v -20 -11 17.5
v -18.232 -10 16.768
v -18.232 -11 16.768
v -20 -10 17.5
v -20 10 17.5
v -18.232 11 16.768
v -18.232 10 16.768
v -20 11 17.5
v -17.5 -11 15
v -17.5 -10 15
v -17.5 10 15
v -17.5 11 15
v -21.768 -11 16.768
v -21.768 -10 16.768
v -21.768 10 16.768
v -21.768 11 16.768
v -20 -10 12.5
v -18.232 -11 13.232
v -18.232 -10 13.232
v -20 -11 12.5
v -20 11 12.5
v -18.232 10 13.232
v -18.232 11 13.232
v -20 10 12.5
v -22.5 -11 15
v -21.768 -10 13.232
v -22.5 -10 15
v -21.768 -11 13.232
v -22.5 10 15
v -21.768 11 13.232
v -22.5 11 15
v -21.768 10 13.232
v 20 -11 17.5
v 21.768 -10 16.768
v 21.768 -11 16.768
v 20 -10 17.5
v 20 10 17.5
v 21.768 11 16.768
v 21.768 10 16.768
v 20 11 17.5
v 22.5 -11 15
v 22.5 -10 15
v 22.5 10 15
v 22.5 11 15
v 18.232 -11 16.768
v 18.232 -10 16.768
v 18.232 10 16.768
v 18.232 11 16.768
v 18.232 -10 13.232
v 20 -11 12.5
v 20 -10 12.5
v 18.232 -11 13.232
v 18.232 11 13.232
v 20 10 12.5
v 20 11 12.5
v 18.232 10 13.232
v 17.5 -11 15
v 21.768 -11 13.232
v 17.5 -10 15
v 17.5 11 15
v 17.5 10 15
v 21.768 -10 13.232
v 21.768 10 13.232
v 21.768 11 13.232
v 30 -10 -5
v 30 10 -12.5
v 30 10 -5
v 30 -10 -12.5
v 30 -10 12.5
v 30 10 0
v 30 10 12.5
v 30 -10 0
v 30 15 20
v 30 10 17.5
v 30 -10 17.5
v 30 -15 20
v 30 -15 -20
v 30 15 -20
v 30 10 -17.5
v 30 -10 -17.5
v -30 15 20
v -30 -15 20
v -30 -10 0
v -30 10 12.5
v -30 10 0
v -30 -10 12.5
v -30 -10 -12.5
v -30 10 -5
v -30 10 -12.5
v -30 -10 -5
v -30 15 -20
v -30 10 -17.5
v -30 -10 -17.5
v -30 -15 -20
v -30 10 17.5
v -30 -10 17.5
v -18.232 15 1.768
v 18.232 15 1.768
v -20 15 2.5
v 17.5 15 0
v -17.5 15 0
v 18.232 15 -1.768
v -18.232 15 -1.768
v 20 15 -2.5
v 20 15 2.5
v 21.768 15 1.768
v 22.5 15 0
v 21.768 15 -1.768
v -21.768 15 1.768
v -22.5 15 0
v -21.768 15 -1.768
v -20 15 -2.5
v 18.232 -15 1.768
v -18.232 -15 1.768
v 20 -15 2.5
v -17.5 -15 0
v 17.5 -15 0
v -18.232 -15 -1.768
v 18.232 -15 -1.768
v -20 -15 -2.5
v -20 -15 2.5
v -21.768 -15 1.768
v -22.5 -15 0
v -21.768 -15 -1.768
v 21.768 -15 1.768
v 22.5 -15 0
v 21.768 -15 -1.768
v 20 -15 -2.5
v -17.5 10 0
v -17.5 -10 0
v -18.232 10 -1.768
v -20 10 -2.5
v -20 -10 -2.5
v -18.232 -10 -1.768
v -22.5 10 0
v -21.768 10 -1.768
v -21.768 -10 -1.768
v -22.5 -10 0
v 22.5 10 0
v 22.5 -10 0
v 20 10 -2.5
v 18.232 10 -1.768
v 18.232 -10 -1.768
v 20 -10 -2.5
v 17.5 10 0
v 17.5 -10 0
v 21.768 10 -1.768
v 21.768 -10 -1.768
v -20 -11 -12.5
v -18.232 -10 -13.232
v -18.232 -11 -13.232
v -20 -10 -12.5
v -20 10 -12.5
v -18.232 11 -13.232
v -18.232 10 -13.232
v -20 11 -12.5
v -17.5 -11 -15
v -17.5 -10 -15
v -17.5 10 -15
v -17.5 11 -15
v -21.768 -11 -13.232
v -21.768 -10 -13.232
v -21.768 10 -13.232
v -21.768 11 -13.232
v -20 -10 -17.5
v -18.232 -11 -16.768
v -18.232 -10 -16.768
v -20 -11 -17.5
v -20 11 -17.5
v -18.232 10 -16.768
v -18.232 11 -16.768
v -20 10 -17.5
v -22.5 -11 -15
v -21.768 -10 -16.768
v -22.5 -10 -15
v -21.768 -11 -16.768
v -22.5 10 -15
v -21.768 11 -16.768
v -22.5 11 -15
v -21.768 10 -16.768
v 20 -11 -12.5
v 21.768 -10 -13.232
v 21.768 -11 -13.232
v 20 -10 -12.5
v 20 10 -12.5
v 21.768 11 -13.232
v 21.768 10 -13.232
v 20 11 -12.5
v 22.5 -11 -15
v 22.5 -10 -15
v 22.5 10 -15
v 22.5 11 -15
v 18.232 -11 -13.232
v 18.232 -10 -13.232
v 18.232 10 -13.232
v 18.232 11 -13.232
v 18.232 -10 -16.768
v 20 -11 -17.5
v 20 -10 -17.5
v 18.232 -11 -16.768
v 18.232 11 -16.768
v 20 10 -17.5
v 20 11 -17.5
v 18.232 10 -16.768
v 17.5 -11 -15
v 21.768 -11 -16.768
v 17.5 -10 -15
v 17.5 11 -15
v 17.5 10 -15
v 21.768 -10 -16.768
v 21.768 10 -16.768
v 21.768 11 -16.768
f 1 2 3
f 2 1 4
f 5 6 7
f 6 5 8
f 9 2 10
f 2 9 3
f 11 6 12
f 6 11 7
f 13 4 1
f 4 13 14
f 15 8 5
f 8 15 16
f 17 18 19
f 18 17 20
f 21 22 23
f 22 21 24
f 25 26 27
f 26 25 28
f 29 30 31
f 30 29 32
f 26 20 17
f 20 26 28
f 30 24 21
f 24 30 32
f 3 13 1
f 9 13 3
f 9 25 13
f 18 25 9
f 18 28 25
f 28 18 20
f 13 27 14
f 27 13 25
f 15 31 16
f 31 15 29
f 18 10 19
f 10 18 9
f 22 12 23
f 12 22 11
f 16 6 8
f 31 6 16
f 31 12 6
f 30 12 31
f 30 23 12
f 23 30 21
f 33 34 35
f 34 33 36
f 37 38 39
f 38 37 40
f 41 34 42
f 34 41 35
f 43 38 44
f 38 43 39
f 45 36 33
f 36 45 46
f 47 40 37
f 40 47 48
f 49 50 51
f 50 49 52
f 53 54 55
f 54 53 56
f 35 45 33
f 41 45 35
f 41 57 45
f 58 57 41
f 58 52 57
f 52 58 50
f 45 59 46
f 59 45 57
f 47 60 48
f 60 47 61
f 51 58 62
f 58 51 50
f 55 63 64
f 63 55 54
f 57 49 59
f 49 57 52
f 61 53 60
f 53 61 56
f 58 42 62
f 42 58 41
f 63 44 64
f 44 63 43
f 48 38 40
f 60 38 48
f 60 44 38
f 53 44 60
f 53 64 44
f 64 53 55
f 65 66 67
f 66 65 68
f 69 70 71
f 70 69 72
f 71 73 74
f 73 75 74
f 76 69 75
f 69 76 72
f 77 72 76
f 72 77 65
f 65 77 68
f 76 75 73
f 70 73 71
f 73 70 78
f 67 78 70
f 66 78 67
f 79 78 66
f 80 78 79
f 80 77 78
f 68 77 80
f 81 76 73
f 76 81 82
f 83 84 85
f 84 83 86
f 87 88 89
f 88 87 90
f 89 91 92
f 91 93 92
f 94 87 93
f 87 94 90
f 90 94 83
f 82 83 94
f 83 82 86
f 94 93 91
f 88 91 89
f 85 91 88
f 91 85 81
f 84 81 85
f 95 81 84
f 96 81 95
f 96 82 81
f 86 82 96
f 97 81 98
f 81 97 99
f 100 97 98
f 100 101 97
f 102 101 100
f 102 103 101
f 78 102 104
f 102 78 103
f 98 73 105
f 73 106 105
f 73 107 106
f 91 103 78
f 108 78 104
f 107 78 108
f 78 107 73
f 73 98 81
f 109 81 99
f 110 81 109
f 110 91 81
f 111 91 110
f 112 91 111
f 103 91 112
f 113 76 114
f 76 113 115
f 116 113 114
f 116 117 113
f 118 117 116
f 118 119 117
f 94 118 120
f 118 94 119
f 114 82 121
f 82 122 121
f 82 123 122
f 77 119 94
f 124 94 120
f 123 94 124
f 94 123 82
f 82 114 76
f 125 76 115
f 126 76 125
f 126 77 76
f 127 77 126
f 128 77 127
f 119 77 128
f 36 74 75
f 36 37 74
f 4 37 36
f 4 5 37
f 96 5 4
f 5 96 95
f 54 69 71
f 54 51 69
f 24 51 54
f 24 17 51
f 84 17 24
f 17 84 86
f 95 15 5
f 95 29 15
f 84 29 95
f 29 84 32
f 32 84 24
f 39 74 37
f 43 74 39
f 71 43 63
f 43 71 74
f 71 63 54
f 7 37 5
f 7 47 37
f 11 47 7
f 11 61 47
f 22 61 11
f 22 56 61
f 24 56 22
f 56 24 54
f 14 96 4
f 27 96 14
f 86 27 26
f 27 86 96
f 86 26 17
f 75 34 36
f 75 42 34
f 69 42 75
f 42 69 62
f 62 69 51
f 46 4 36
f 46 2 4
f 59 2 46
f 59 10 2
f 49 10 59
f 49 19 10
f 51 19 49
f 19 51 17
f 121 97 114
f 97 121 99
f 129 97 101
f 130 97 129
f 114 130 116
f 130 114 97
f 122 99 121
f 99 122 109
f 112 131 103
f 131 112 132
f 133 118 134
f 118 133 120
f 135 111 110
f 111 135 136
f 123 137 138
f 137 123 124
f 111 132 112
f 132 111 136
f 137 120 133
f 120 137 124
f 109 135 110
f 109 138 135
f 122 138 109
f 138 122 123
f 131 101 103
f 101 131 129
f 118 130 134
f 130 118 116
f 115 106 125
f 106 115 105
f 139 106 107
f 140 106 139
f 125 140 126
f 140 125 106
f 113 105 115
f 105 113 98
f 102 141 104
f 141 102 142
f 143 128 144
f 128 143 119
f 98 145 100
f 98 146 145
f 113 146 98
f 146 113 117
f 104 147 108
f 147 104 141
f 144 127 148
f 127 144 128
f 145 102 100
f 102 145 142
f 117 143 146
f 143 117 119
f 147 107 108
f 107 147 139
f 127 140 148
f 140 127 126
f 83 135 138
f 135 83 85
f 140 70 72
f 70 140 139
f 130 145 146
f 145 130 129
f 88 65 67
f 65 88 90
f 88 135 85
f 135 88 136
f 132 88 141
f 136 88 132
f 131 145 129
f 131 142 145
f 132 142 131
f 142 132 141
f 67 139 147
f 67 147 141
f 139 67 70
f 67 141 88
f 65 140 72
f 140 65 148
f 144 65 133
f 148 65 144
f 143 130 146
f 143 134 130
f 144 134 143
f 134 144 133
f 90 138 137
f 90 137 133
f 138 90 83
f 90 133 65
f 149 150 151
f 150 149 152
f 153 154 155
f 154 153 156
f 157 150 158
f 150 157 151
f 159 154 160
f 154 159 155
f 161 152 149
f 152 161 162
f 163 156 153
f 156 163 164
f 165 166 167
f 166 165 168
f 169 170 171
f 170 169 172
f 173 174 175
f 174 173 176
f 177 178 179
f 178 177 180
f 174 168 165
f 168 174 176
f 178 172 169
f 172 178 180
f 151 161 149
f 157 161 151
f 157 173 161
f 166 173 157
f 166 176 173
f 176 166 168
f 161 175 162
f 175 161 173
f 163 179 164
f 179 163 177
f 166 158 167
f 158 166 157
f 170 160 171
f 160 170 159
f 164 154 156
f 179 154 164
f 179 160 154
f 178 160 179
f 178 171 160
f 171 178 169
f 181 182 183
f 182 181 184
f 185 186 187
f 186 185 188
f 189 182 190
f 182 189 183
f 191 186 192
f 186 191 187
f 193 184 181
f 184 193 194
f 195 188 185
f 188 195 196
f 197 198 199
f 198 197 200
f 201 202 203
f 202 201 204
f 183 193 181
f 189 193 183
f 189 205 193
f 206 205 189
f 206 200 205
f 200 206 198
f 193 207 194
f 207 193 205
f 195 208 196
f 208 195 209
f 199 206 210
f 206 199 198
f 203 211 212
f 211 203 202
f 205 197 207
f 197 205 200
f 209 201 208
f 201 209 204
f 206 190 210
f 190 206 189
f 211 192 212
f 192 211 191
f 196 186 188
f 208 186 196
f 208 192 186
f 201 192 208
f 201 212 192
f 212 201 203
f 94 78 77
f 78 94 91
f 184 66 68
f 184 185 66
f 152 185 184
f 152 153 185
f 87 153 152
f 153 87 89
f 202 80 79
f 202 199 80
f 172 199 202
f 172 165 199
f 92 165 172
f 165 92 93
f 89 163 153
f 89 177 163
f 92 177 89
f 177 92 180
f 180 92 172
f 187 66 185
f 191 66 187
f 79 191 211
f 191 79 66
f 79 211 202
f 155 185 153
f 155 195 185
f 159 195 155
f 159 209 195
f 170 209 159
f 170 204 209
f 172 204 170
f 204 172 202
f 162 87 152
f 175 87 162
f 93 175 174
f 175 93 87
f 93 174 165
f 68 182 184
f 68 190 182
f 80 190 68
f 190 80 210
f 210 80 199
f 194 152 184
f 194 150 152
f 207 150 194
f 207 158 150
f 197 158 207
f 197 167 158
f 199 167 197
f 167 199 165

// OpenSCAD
// Parameters for the components
central_block_length = 60;
central_block_width = 30;
central_block_height = 20;
groove_depth = 5;
groove_width = 20;
hole_diameter = 5;
hole_offset = 10;

spacer_block_length = 60;
spacer_block_width = 30;
spacer_block_height = 10;

// Function to create the central block
module central_block() {
    difference() {
        // Main block
        cube([central_block_length, central_block_width, central_block_height], center = true);
        // Groove
        translate([0, 0, -groove_depth / 2])
            cube([central_block_length, groove_width, groove_depth], center = true);
        // Holes for bolts
        for (x = [-central_block_length / 2 + hole_offset, central_block_length / 2 - hole_offset]) {
            for (y = [-central_block_width / 2 + hole_offset, central_block_width / 2 - hole_offset]) {
                translate([x, y, 0])
                    rotate([90, 0, 0])
                        cylinder(r = hole_diameter / 2, h = central_block_height + 2, center = true);
            }
        }
    }
}

// Function to create a spacer block
module spacer_block() {
    difference() {
        // Main block
        cube([spacer_block_length, spacer_block_width, spacer_block_height], center = true);
        // Single groove to fit into the central block
        translate([0, 0, spacer_block_height / 2 - groove_depth])
            cube([spacer_block_length, groove_width, groove_depth], center = true);
        // Holes for bolts
        for (x = [-spacer_block_length / 2 + hole_offset, spacer_block_length / 2 - hole_offset]) {
            for (y = [-spacer_block_width / 2 + hole_offset, spacer_block_width / 2 - hole_offset]) {
                translate([x, y, 0])
                    rotate([90, 0, 0])
                        cylinder(r = hole_diameter / 2, h = spacer_block_height + 2, center = true);
            }
        }
    }
}

// Assembly of the flexible coupling
module flexible_coupling() {
    // Layer 1: Top spacer block
    translate([0, 0, central_block_height / 2 + spacer_block_height / 2])
        spacer_block();
    // Layer 2: Central block
    central_block();
    // Layer 3: Bottom spacer block
    translate([0, 0, -(central_block_height / 2 + spacer_block_height / 2)])
        spacer_block();
}

// Render the model
flexible_coupling();
